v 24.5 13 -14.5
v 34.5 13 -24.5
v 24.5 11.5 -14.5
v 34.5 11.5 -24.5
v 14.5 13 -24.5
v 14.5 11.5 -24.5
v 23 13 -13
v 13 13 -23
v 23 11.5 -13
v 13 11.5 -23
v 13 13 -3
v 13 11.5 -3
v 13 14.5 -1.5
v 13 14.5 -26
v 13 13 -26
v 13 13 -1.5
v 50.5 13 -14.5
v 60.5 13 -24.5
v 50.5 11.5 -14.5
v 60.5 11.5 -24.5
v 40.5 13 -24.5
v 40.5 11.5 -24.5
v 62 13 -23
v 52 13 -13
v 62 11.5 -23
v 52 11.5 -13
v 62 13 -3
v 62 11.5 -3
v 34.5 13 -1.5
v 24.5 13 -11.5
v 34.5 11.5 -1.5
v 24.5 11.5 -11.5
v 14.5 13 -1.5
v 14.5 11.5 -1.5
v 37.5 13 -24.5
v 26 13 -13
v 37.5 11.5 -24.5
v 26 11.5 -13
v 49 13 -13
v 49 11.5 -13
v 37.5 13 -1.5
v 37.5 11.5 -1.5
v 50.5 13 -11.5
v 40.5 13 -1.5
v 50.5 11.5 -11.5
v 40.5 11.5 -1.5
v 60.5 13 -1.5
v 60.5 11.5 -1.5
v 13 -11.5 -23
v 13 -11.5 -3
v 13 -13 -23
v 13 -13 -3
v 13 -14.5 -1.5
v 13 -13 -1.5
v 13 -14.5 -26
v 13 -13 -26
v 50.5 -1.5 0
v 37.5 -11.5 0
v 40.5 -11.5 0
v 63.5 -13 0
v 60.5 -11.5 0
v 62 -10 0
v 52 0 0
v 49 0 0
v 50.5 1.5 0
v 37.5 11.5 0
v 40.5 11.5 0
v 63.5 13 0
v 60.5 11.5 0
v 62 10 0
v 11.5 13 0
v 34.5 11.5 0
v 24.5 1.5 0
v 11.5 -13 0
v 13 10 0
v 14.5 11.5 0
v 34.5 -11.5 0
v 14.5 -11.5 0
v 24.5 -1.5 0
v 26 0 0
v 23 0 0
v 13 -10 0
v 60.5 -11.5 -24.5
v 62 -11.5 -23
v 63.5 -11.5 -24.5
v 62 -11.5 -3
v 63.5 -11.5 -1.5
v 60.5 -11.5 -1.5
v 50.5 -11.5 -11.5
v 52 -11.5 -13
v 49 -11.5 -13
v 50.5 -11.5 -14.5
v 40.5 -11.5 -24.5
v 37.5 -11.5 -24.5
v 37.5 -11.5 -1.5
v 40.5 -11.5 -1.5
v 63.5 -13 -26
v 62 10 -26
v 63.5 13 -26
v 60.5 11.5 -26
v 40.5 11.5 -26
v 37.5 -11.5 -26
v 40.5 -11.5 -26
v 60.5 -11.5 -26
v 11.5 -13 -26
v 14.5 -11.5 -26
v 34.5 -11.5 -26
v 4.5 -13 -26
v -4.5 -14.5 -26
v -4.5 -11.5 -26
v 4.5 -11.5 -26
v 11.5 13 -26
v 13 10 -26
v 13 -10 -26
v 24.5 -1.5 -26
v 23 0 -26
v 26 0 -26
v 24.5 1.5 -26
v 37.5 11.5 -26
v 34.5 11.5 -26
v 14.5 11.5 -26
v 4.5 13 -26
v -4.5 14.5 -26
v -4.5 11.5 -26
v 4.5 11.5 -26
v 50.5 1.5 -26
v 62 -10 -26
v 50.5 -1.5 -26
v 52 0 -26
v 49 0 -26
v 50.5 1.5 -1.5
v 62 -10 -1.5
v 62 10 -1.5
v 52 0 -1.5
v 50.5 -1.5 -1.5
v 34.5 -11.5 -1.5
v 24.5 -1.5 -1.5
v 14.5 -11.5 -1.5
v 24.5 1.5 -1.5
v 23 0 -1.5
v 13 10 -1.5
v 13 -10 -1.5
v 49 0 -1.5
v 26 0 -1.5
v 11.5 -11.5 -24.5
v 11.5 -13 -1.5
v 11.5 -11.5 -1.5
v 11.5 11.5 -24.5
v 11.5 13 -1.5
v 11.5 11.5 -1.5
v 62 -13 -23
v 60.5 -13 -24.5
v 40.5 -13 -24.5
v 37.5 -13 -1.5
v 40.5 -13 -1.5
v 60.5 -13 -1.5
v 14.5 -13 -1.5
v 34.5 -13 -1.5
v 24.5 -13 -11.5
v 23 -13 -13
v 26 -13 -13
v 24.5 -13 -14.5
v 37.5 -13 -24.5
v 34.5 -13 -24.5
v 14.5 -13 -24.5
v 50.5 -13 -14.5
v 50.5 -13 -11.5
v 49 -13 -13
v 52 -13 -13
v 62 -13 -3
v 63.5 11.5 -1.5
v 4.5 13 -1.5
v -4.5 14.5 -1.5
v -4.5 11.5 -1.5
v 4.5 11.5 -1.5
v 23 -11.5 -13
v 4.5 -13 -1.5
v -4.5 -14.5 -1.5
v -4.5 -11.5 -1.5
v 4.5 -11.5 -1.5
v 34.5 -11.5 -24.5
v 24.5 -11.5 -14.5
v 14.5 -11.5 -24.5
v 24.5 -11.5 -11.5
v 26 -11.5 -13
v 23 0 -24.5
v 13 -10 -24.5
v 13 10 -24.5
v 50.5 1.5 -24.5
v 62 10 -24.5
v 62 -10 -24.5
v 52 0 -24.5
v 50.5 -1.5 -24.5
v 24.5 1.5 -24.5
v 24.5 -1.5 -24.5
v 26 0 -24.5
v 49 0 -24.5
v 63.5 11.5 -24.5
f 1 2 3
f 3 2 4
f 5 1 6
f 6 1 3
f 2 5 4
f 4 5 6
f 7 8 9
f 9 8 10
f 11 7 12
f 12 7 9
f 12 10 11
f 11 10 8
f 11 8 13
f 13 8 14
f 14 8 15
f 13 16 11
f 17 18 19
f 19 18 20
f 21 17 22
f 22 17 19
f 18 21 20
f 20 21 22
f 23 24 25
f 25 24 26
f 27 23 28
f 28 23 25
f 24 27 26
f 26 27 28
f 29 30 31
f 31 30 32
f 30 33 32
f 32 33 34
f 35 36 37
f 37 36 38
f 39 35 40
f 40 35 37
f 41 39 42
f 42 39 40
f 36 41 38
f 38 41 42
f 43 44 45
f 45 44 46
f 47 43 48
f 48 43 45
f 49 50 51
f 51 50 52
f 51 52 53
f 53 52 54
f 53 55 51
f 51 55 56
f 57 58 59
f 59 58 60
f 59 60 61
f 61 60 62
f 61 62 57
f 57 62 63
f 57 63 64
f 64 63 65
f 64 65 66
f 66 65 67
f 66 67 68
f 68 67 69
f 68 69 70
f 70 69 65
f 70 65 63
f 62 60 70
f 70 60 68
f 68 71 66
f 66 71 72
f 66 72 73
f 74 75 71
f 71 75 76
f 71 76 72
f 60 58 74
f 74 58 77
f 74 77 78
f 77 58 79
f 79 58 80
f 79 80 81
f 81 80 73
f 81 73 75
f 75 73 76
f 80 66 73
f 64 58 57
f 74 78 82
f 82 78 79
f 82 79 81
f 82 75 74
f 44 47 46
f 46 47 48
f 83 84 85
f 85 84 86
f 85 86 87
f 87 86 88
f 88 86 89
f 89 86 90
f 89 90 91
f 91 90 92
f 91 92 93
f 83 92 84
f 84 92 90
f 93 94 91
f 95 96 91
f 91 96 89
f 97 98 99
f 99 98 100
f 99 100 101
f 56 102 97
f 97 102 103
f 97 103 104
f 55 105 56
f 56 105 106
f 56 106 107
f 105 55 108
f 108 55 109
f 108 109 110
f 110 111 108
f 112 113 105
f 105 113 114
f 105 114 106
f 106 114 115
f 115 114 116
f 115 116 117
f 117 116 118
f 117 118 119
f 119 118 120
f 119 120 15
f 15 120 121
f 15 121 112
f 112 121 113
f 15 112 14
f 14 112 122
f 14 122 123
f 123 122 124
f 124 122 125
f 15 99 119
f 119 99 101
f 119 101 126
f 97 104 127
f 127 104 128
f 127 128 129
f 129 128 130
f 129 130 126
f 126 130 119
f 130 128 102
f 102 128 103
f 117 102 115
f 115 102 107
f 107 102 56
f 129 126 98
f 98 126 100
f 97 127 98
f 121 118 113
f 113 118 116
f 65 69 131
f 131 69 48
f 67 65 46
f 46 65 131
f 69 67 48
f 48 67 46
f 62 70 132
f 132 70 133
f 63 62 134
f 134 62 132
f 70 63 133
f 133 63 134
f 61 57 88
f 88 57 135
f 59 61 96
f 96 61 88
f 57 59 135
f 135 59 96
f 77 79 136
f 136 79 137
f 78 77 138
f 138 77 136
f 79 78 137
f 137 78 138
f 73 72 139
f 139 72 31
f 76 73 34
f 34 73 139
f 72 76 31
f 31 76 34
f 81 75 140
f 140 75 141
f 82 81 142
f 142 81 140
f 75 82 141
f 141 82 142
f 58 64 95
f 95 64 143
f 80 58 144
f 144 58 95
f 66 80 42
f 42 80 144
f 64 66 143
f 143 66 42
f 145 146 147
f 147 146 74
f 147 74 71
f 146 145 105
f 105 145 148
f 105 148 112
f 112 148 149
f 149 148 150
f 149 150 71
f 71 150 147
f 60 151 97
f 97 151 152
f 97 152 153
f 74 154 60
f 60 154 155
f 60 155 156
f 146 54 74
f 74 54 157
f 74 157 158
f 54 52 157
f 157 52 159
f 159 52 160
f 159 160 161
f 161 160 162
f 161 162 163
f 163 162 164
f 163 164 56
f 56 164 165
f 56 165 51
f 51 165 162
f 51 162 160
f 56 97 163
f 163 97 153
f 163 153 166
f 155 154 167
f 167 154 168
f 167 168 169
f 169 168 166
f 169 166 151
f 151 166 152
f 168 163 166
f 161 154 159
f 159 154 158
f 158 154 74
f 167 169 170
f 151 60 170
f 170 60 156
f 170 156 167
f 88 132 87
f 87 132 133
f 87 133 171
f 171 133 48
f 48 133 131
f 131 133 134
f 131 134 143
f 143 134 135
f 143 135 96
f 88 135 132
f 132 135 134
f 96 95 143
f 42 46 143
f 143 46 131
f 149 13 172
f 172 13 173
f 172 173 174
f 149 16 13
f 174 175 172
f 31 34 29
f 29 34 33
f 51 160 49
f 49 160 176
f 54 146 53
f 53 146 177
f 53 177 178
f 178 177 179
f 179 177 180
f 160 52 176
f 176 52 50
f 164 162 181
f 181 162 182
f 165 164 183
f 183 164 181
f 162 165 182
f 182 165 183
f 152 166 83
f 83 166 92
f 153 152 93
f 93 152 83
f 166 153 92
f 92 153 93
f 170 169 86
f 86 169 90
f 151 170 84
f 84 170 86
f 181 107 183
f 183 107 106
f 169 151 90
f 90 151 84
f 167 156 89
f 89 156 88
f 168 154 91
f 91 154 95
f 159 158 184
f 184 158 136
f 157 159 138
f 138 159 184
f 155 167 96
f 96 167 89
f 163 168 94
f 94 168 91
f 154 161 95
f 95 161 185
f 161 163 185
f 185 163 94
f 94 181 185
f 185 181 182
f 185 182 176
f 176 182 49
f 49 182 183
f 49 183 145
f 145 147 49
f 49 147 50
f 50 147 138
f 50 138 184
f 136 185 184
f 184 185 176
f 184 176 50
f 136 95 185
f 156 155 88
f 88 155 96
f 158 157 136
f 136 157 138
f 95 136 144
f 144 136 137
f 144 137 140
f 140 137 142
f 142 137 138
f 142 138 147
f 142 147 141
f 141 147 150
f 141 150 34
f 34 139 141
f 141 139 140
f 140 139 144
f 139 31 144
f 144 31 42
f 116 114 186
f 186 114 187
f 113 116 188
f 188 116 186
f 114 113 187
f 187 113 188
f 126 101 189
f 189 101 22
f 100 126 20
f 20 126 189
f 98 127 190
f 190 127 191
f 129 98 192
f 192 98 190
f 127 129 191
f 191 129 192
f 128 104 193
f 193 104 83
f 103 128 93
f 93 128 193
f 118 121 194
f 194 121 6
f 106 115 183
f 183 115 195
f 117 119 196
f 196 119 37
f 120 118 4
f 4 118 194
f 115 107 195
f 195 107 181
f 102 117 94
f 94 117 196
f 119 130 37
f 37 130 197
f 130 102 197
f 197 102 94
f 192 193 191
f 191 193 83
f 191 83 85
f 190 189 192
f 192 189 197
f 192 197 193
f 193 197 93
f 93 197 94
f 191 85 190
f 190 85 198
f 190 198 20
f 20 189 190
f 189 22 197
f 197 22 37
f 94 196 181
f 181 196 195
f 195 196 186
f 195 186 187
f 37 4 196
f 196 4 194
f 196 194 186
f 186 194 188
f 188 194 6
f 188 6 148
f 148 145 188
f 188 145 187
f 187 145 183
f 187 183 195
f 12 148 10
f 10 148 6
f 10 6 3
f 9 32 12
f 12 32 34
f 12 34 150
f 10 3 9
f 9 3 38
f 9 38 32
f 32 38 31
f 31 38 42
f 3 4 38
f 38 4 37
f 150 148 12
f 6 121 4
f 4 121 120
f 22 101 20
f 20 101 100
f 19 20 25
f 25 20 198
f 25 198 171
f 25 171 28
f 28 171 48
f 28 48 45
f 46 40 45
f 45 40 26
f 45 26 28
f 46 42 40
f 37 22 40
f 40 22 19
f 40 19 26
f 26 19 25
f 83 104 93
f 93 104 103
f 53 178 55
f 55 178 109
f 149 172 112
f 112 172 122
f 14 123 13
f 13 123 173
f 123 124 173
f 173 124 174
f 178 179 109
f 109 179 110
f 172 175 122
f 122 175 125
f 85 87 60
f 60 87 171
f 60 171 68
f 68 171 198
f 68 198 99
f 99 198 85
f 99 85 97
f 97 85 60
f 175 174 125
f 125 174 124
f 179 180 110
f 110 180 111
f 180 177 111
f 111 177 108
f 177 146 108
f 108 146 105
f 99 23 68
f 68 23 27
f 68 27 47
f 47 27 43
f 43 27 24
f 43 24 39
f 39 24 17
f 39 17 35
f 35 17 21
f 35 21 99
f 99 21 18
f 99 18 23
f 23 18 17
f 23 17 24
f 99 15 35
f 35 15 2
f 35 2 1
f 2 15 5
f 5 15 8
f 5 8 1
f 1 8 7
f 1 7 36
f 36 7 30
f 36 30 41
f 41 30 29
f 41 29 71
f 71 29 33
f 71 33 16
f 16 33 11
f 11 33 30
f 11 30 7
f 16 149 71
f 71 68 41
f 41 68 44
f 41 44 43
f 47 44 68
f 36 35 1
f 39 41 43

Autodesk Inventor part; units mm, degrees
ref_plane "YZ Plane" through (0, 0, 0) normal (1, 0, 0) x (0, 1, 0)
ref_plane "XZ Plane" through (0, 0, 0) normal (0, 1, 0) x (-1, 0, 0)
ref_plane "XY Plane" through (0, 0, 0) normal (0, 0, 1) x (1, 0, 0)
sketch "スケッチ1" plane through (0, 0, 0) normal (0, 0, 1) x (1, 0, 0)
  line L0 (-11.5, 13) -> (-11.5, -13) projected
  line L1 (11.5, 13) -> (-11.5, 13) projected
  line L2 (11.5, -13) -> (11.5, 13) projected
  line L3 (-11.5, -13) -> (11.5, -13) projected
  line L4 (11.5, 13) -> (63.5, 13)
  line L5 (63.5, 13) -> (63.5, -13)
  line L6 (63.5, -13) -> (11.5, -13)
  line L7 (11.5, -13) -> (11.5, 13)
  line L8 (37.5, 13) -> (37.5, -13)
  line L9 (11.5, 13) -> (37.5, -13)
  line L10 (37.5, 13) -> (11.5, -13)
  line L11 (63.5, 13) -> (37.5, -13)
  line L12 (37.5, 13) -> (63.5, -13)
  line L13 (13, -11.5) -> (62, -11.5)
  line L14 (62, 11.5) -> (13, 11.5)
  line L15 (13, -11.5) -> (13, 11.5)
  line L16 (62, -11.5) -> (62, 11.5)
  line L17 (13, -13) -> (37.5, 11.5)
  line L18 (11.5, -11.5) -> (36, 13)
  line L19 (37.5, -11.5) -> (14.5, 11.5)
  line L20 (13, 10) -> (36, -13)
  line L21 (37.5, -11.5) -> (60.5, 11.5)
  line L22 (62, 10) -> (39, -13)
  line L23 (38.0069, 10.9931) -> (60.5, -11.5)
  line L24 (62, -10) -> (39, 13)
  line L25 (37.5, 11.5) -> (60.5, -11.5)
  point P0 (0, 0)
  point P1 (49, 0)
  point P2 (26, 0)
  point P3 (13, -10)
  point P4 (23, 0)
  point P5 (34.5, 11.5)
  point P6 (24.5, 1.5)
  point P7 (14.5, -11.5)
  point P8 (24.5, -1.5)
  point P9 (34.5, -11.5)
  point P10 (40.5, -11.5)
  point P11 (50.5, -1.5)
  point P12 (52, 0)
  point P13 (40.5, 11.5)
  point P14 (50.5, 1.5)
  dimension "d0" = 52
  dimension "d1" = 26
  dimension "d2" = 1.5
extrude "押し出し1" add sketch "スケッチ1" against normal blind 1.5 contours L9 L15 L18 L2 | L4 L18 L14 L9 | L10 L13 L17 L6 | L2 L18 L15 L10 | L4 L10 L14 L18 | L14 L19 L18 L9 | L9 L18 L20 L15 | L17 L13 L20 L6 | L15 L18 L20 L10 | L10 L20 L17 L13 | L12 L14 L8 | L8 L14 L10 | L4 L24 L14 L12 | L14 L10 L19 L18 | L18 L19 L10 L9 | L9 L10 L20 L18 | L20 L13 L9 L6 | L10 L9 L17 L20 | L4 L11 L14 L24 | L17 L19 L10 L14 | L14 L12 L21 L23 L25 | L14 L24 L21 L12 | L10 L19 L17 L9 | L11 L13 L22 L6 | L9 L13 L8 | L8 L13 L11 | L20 L17 L9 L13 | L5 L12 L16 L11 | L21 L23 L11 L13 | L13 L9 L17 L19 | L21 L24 L11 L12 | L12 L11 L23 L21 | L22 L13 L12 L6 | L11 L23 L22 L13 | L16 L22 L24 L11 | L11 L24 L21 L14 | L12 L22 L23 L11 | L11 L24 L22 L12 | L13 L23 L22 L12 | L12 L22 L24 L16
sketch "スケッチ5" plane through (11.5, 13, 0) normal (0, 1, 0) x (1, 0, 0)
  line L0 (-7, 32) -> (0, 32) projected
  line L1 (0, 32) -> (0, 0) projected
  line L2 (0, 0) -> (-23, 0) projected
  line L3 (52, 0) -> (0, 0) projected
  line L4 (52, 0) -> (52, 26)
  line L5 (52, 26) -> (0, 26)
  line L6 (1.5, 26) -> (1.5, 0)
  line L7 (0, 24.5) -> (52, 24.5)
  line L8 (50.5, 26) -> (50.5, 0)
  line L9 (0, 1.5) -> (52, 1.5) projected
  line L10 (26, 1.5) -> (26, 26)
  line L11 (0, 26) -> (26, 0)
  line L12 (52, 26) -> (26, 0)
  line L13 (1.5, 26) -> (26, 1.5)
  line L14 (26, 1.5) -> (50.5, 26)
  line L15 (52, 24.5) -> (27.5, 0)
  line L16 (24.5, 0) -> (0, 24.5)
  line L17 (0, 0) -> (26, 26)
  line L18 (26, 26) -> (52, 0)
  line L19 (52, 1.5) -> (27.5, 26)
  line L20 (26, 24.5) -> (50.5, 0)
  line L21 (26, 24.5) -> (1.5, 0)
  line L22 (0, 1.5) -> (24.5, 26)
  point P0 (-11.5, 0)
  point P1 (49, 1.5)
  point P2 (29, 1.5)
  point P3 (39, 11.5)
  point P4 (14.5, 13)
  point P5 (37.5, 13)
  point P6 (3, 1.5)
  point P7 (13, 11.5)
  point P8 (23, 1.5)
  point P9 (50.5, 3)
  point P10 (40.5, 13)
  point P11 (50.5, 23)
  point P12 (29, 24.5)
  point P13 (49, 24.5)
  point P14 (39, 14.5)
  point P15 (1.5, 3)
  point P16 (1.5, 23)
  point P17 (11.5, 13)
  point P18 (3, 24.5)
  point P19 (23, 24.5)
  point P20 (13, 14.5)
  dimension "d7" = 26
  dimension "d8" = 1.5
  dimension "d9" = 1.5
  dimension "d10" = 1.5
extrude "押し出し2" add sketch "スケッチ5" against normal blind 1.5 contours L11 L7 L1 | L5 L6 L11 | L16 L6 L22 L1 | L7 L6 L16 | L13 L7 L6 | L5 L22 L7 L13 | L11 L22 L16 L6 | L7 L13 L22 L11 | L9 L17 L1 | L22 L6 L9 | L5 L17 L7 L22 | L22 L13 L17 L11 | L11 L17 L16 L22 | L17 L6 L3 | L9 L21 L6 | L17 L16 L21 L9 | L6 L22 L16 L17 | L18 L7 L10 | L10 L7 L17 | L5 L19 L7 L18 | L7 L17 L13 L22 | L17 L13 L21 L11 | L11 L21 L16 L17 | L21 L9 L16 L3 | L5 L14 L7 L19 | L21 L13 L17 L7 | L7 L18 L14 L20 | L7 L19 L14 L18 | L21 L13 L9 L11 | L11 L9 L16 L21 | L16 L9 L11 L3 | L5 L12 L8 | L8 L7 L14 | L9 L12 L11 | L14 L20 L12 L9 | L14 L18 L12 L20 | L14 L19 L12 L18 | L12 L9 L15 L3 | L4 L7 L12 | L12 L19 L14 L7 | L7 L15 L8 | L8 L15 L19 L12 | L12 L20 L15 L9 | L12 L18 L15 L20 | L12 L19 L15 L18 | L15 L9 L20 L3 | L4 L19 L8 L15 | L15 L18 L9 L20 | L15 L19 L8 L18 | L8 L18 L3 | L20 L9 L8 | L4 L18 L9 | L9 L8 L19
sketch "スケッチ6" plane through (11.5, -13, 0) normal (0, -1, 0) x (1, 0, 0)
  line L0 (1.5, -3) -> (11.5, -13) projected
  line L1 (13, -11.5) -> (3, -1.5) projected
  line L2 (52, -1.5) -> (0, -1.5) projected
  line L3 (0, 0) -> (52, 0) projected
  line L4 (0, -32) -> (0, 0) projected
  line L5 (1.5, -23) -> (1.5, -3) projected
  line L6 (11.5, -13) -> (1.5, -23) projected
  line L7 (3, -24.5) -> (13, -14.5) projected
  line L8 (23, -24.5) -> (3, -24.5) projected
  line L9 (0, -26) -> (52, -26) projected
  line L10 (13, -14.5) -> (23, -24.5) projected
  line L11 (26, -24.5) -> (14.5, -13) projected
  line L12 (14.5, -13) -> (26, -1.5) projected
  line L13 (23, -1.5) -> (13, -11.5) projected
  line L14 (39, -11.5) -> (29, -1.5) projected
  line L15 (26, -1.5) -> (37.5, -13) projected
  line L16 (29, -24.5) -> (39, -14.5) projected
  line L17 (37.5, -13) -> (26, -24.5) projected
  line L18 (49, -24.5) -> (29, -24.5) projected
  line L19 (39, -14.5) -> (49, -24.5) projected
  line L20 (50.5, -23) -> (40.5, -13) projected
  line L21 (50.5, -3) -> (50.5, -23) projected
  line L22 (52, -26) -> (52, -1.5) projected
  line L23 (40.5, -13) -> (50.5, -3) projected
  line L24 (49, -1.5) -> (39, -11.5) projected
  line L25 (52, 0) -> (52, -1.5) projected
  point P0 (-11.5, 0)
extrude "押し出し3" add sketch "スケッチ6" against normal blind 1.5 contours L13 L2 L14 L24 L22 L9 L4 L1 | L2 L4 L3 L25
sketch "スケッチ7" plane through (63.5, 13, -26) normal (0, 0, -1) x (-1, 0, 0)
  line L0 (50.5, -3) -> (50.5, -23) projected
  line L1 (40.5, -13) -> (50.5, -3) projected
  line L2 (49, -1.5) -> (39, -11.5) projected
  line L3 (52, -1.5) -> (0, -1.5) projected
  line L4 (39, -11.5) -> (29, -1.5) projected
  line L5 (26, -1.5) -> (37.5, -13) projected
  line L6 (37.5, -13) -> (26, -24.5) projected
  line L7 (29, -24.5) -> (39, -14.5) projected
  line L8 (39, -14.5) -> (49, -24.5) projected
  line L9 (0, -24.5) -> (52, -24.5) projected
  line L10 (52, 0) -> (52, -7) projected
  line L11 (52, -19) -> (52, -7) projected
  line L12 (52, -19) -> (52, -26) projected
  line L13 (52, -26) -> (0, -26) projected
  line L14 (0, 0) -> (52, 0) projected
  line L15 (14.5, -13) -> (26, -1.5) projected
  line L16 (26, -24.5) -> (14.5, -13) projected
  line L17 (13, -14.5) -> (23, -24.5) projected
  line L18 (3, -24.5) -> (13, -14.5) projected
  line L19 (11.5, -13) -> (1.5, -23) projected
  line L20 (1.5, -3) -> (11.5, -13) projected
  line L21 (13, -11.5) -> (3, -1.5) projected
  line L22 (23, -1.5) -> (13, -11.5) projected
  line L23 (1.5, -23) -> (1.5, -3) projected
  line L24 (0, -1.5) -> (0, -24.5) projected
  line L25 (0, 0) -> (0, -1.5) projected
  line L26 (0, -26) -> (0, -24.5) projected
  line L27 (50.5, -23) -> (40.5, -13) projected
  point P0 (63.5, -13)
extrude "押し出し4" add sketch "スケッチ7" against normal blind 1.5 contours L3 L10 L11 L12 L9 L8 L7 L6 L5 L4 L2 | L3 L25 L14 L10 | L15 L16 L9 L17 L18 L24 L3 L21 L22 | L12 L13 L26 L9
sketch "スケッチ8" plane through (0, 0, 0) normal (0, 0, 1) x (1, 0, 0)
  line L0 (11.5, 13) -> (-11.5, 13) projected
  line L1 (11.5, -13) -> (11.5, 13) projected
  line L2 (11.5, 13) -> (-11.5, 13) projected
  line L3 (-11.5, 13) -> (-11.5, -13) projected
  line L4 (-11.5, -13) -> (11.5, -13) projected
  circle A0 centre (0, 0) radius 5 projected
  line L5 (40.5, -11.5) -> (50.5, -1.5) projected
  line L6 (50.5, -1.5) -> (60.5, -11.5) projected
  line L7 (60.5, -11.5) -> (40.5, -11.5) projected
  line L8 (63.5, -13) -> (63.5, 13) projected
  line L9 (63.5, 13) -> (11.5, 13) projected
  line L10 (11.5, 13) -> (11.5, -13) projected
  line L11 (11.5, -13) -> (63.5, -13) projected
  line L12 (37.5, -11.5) -> (26, 0) projected
  line L13 (26, 0) -> (37.5, 11.5) projected
  line L14 (37.5, 11.5) -> (49, 0) projected
  line L15 (49, 0) -> (37.5, -11.5) projected
  line L16 (34.5, -11.5) -> (14.5, -11.5) projected
  line L17 (14.5, -11.5) -> (24.5, -1.5) projected
  line L18 (24.5, -1.5) -> (34.5, -11.5) projected
  line L19 (34.5, 11.5) -> (24.5, 1.5) projected
  line L20 (24.5, 1.5) -> (14.5, 11.5) projected
  line L21 (14.5, 11.5) -> (34.5, 11.5) projected
  line L22 (40.5, 11.5) -> (60.5, 11.5) projected
  line L23 (60.5, 11.5) -> (50.5, 1.5) projected
  line L24 (50.5, 1.5) -> (40.5, 11.5) projected
  line L25 (13, -10) -> (13, 10) projected
  line L26 (13, 10) -> (23, 0) projected
  line L27 (23, 0) -> (13, -10) projected
  line L28 (52, 0) -> (62, 10) projected
  line L29 (62, 10) -> (62, -10) projected
  line L30 (62, -10) -> (52, 0) projected
  line L31 (13, 10) -> (13, 14.5)
  line L32 (4.5, 13) -> (4.5, 11.5) projected
  line L33 (4.5, 11.5) -> (10, 11.5) projected
  line L34 (10, 11.5) -> (10, 6) projected
  line L35 (10, 6) -> (11.5, 6) projected
  line L36 (-4.5, 11.5) -> (-4.5, 13) projected
  line L37 (-10, 11.5) -> (-4.5, 11.5) projected
  line L38 (-10, 6) -> (-10, 11.5) projected
  line L39 (-11.5, 6) -> (-10, 6) projected
  line L40 (13, 14.5) -> (-4.5, 14.5)
  line L41 (-4.5, 14.5) -> (-4.5, 11.5)
  line L42 (-4.5, 11.5) -> (4.5, 11.5)
  line L43 (4.5, 13) -> (11.5, 13)
  line L44 (-4.5, -13) -> (-4.5, -11.5) projected
  line L45 (-4.5, -11.5) -> (-10, -11.5) projected
  line L46 (-10, -11.5) -> (-10, -6) projected
  line L47 (-10, -6) -> (-11.5, -6) projected
  line L48 (4.5, -11.5) -> (4.5, -13) projected
  line L49 (10, -11.5) -> (4.5, -11.5) projected
  line L50 (10, -6) -> (10, -11.5) projected
  line L51 (11.5, -6) -> (10, -6) projected
  line L52 (13, -13) -> (23, -13) projected
  line L53 (13, -13) -> (13, -14.5)
  line L54 (13, -14.5) -> (-4.5, -14.5)
  line L55 (-4.5, -14.5) -> (-4.5, -11.5)
  line L56 (-4.5, -11.5) -> (4.5, -11.5)
  line L57 (4.5, -13) -> (4.5, -11.5)
  line L58 (4.5, -13) -> (11.5, -13)
  point P0 (13, 12.25)
  point P1 (13, 13)
  dimension "d17" = 4.5
  dimension "d19" = 1.5
extrude "押し出し5" add sketch "スケッチ8" against normal blind 24.5 from surface at -1.5 contours L0 L41 L40 L31 L9 | L32 L42 L36 L0 | L11 L53 L54 L55 L4 | L4 L44 L56 L48
properties part number "足フレーム"
